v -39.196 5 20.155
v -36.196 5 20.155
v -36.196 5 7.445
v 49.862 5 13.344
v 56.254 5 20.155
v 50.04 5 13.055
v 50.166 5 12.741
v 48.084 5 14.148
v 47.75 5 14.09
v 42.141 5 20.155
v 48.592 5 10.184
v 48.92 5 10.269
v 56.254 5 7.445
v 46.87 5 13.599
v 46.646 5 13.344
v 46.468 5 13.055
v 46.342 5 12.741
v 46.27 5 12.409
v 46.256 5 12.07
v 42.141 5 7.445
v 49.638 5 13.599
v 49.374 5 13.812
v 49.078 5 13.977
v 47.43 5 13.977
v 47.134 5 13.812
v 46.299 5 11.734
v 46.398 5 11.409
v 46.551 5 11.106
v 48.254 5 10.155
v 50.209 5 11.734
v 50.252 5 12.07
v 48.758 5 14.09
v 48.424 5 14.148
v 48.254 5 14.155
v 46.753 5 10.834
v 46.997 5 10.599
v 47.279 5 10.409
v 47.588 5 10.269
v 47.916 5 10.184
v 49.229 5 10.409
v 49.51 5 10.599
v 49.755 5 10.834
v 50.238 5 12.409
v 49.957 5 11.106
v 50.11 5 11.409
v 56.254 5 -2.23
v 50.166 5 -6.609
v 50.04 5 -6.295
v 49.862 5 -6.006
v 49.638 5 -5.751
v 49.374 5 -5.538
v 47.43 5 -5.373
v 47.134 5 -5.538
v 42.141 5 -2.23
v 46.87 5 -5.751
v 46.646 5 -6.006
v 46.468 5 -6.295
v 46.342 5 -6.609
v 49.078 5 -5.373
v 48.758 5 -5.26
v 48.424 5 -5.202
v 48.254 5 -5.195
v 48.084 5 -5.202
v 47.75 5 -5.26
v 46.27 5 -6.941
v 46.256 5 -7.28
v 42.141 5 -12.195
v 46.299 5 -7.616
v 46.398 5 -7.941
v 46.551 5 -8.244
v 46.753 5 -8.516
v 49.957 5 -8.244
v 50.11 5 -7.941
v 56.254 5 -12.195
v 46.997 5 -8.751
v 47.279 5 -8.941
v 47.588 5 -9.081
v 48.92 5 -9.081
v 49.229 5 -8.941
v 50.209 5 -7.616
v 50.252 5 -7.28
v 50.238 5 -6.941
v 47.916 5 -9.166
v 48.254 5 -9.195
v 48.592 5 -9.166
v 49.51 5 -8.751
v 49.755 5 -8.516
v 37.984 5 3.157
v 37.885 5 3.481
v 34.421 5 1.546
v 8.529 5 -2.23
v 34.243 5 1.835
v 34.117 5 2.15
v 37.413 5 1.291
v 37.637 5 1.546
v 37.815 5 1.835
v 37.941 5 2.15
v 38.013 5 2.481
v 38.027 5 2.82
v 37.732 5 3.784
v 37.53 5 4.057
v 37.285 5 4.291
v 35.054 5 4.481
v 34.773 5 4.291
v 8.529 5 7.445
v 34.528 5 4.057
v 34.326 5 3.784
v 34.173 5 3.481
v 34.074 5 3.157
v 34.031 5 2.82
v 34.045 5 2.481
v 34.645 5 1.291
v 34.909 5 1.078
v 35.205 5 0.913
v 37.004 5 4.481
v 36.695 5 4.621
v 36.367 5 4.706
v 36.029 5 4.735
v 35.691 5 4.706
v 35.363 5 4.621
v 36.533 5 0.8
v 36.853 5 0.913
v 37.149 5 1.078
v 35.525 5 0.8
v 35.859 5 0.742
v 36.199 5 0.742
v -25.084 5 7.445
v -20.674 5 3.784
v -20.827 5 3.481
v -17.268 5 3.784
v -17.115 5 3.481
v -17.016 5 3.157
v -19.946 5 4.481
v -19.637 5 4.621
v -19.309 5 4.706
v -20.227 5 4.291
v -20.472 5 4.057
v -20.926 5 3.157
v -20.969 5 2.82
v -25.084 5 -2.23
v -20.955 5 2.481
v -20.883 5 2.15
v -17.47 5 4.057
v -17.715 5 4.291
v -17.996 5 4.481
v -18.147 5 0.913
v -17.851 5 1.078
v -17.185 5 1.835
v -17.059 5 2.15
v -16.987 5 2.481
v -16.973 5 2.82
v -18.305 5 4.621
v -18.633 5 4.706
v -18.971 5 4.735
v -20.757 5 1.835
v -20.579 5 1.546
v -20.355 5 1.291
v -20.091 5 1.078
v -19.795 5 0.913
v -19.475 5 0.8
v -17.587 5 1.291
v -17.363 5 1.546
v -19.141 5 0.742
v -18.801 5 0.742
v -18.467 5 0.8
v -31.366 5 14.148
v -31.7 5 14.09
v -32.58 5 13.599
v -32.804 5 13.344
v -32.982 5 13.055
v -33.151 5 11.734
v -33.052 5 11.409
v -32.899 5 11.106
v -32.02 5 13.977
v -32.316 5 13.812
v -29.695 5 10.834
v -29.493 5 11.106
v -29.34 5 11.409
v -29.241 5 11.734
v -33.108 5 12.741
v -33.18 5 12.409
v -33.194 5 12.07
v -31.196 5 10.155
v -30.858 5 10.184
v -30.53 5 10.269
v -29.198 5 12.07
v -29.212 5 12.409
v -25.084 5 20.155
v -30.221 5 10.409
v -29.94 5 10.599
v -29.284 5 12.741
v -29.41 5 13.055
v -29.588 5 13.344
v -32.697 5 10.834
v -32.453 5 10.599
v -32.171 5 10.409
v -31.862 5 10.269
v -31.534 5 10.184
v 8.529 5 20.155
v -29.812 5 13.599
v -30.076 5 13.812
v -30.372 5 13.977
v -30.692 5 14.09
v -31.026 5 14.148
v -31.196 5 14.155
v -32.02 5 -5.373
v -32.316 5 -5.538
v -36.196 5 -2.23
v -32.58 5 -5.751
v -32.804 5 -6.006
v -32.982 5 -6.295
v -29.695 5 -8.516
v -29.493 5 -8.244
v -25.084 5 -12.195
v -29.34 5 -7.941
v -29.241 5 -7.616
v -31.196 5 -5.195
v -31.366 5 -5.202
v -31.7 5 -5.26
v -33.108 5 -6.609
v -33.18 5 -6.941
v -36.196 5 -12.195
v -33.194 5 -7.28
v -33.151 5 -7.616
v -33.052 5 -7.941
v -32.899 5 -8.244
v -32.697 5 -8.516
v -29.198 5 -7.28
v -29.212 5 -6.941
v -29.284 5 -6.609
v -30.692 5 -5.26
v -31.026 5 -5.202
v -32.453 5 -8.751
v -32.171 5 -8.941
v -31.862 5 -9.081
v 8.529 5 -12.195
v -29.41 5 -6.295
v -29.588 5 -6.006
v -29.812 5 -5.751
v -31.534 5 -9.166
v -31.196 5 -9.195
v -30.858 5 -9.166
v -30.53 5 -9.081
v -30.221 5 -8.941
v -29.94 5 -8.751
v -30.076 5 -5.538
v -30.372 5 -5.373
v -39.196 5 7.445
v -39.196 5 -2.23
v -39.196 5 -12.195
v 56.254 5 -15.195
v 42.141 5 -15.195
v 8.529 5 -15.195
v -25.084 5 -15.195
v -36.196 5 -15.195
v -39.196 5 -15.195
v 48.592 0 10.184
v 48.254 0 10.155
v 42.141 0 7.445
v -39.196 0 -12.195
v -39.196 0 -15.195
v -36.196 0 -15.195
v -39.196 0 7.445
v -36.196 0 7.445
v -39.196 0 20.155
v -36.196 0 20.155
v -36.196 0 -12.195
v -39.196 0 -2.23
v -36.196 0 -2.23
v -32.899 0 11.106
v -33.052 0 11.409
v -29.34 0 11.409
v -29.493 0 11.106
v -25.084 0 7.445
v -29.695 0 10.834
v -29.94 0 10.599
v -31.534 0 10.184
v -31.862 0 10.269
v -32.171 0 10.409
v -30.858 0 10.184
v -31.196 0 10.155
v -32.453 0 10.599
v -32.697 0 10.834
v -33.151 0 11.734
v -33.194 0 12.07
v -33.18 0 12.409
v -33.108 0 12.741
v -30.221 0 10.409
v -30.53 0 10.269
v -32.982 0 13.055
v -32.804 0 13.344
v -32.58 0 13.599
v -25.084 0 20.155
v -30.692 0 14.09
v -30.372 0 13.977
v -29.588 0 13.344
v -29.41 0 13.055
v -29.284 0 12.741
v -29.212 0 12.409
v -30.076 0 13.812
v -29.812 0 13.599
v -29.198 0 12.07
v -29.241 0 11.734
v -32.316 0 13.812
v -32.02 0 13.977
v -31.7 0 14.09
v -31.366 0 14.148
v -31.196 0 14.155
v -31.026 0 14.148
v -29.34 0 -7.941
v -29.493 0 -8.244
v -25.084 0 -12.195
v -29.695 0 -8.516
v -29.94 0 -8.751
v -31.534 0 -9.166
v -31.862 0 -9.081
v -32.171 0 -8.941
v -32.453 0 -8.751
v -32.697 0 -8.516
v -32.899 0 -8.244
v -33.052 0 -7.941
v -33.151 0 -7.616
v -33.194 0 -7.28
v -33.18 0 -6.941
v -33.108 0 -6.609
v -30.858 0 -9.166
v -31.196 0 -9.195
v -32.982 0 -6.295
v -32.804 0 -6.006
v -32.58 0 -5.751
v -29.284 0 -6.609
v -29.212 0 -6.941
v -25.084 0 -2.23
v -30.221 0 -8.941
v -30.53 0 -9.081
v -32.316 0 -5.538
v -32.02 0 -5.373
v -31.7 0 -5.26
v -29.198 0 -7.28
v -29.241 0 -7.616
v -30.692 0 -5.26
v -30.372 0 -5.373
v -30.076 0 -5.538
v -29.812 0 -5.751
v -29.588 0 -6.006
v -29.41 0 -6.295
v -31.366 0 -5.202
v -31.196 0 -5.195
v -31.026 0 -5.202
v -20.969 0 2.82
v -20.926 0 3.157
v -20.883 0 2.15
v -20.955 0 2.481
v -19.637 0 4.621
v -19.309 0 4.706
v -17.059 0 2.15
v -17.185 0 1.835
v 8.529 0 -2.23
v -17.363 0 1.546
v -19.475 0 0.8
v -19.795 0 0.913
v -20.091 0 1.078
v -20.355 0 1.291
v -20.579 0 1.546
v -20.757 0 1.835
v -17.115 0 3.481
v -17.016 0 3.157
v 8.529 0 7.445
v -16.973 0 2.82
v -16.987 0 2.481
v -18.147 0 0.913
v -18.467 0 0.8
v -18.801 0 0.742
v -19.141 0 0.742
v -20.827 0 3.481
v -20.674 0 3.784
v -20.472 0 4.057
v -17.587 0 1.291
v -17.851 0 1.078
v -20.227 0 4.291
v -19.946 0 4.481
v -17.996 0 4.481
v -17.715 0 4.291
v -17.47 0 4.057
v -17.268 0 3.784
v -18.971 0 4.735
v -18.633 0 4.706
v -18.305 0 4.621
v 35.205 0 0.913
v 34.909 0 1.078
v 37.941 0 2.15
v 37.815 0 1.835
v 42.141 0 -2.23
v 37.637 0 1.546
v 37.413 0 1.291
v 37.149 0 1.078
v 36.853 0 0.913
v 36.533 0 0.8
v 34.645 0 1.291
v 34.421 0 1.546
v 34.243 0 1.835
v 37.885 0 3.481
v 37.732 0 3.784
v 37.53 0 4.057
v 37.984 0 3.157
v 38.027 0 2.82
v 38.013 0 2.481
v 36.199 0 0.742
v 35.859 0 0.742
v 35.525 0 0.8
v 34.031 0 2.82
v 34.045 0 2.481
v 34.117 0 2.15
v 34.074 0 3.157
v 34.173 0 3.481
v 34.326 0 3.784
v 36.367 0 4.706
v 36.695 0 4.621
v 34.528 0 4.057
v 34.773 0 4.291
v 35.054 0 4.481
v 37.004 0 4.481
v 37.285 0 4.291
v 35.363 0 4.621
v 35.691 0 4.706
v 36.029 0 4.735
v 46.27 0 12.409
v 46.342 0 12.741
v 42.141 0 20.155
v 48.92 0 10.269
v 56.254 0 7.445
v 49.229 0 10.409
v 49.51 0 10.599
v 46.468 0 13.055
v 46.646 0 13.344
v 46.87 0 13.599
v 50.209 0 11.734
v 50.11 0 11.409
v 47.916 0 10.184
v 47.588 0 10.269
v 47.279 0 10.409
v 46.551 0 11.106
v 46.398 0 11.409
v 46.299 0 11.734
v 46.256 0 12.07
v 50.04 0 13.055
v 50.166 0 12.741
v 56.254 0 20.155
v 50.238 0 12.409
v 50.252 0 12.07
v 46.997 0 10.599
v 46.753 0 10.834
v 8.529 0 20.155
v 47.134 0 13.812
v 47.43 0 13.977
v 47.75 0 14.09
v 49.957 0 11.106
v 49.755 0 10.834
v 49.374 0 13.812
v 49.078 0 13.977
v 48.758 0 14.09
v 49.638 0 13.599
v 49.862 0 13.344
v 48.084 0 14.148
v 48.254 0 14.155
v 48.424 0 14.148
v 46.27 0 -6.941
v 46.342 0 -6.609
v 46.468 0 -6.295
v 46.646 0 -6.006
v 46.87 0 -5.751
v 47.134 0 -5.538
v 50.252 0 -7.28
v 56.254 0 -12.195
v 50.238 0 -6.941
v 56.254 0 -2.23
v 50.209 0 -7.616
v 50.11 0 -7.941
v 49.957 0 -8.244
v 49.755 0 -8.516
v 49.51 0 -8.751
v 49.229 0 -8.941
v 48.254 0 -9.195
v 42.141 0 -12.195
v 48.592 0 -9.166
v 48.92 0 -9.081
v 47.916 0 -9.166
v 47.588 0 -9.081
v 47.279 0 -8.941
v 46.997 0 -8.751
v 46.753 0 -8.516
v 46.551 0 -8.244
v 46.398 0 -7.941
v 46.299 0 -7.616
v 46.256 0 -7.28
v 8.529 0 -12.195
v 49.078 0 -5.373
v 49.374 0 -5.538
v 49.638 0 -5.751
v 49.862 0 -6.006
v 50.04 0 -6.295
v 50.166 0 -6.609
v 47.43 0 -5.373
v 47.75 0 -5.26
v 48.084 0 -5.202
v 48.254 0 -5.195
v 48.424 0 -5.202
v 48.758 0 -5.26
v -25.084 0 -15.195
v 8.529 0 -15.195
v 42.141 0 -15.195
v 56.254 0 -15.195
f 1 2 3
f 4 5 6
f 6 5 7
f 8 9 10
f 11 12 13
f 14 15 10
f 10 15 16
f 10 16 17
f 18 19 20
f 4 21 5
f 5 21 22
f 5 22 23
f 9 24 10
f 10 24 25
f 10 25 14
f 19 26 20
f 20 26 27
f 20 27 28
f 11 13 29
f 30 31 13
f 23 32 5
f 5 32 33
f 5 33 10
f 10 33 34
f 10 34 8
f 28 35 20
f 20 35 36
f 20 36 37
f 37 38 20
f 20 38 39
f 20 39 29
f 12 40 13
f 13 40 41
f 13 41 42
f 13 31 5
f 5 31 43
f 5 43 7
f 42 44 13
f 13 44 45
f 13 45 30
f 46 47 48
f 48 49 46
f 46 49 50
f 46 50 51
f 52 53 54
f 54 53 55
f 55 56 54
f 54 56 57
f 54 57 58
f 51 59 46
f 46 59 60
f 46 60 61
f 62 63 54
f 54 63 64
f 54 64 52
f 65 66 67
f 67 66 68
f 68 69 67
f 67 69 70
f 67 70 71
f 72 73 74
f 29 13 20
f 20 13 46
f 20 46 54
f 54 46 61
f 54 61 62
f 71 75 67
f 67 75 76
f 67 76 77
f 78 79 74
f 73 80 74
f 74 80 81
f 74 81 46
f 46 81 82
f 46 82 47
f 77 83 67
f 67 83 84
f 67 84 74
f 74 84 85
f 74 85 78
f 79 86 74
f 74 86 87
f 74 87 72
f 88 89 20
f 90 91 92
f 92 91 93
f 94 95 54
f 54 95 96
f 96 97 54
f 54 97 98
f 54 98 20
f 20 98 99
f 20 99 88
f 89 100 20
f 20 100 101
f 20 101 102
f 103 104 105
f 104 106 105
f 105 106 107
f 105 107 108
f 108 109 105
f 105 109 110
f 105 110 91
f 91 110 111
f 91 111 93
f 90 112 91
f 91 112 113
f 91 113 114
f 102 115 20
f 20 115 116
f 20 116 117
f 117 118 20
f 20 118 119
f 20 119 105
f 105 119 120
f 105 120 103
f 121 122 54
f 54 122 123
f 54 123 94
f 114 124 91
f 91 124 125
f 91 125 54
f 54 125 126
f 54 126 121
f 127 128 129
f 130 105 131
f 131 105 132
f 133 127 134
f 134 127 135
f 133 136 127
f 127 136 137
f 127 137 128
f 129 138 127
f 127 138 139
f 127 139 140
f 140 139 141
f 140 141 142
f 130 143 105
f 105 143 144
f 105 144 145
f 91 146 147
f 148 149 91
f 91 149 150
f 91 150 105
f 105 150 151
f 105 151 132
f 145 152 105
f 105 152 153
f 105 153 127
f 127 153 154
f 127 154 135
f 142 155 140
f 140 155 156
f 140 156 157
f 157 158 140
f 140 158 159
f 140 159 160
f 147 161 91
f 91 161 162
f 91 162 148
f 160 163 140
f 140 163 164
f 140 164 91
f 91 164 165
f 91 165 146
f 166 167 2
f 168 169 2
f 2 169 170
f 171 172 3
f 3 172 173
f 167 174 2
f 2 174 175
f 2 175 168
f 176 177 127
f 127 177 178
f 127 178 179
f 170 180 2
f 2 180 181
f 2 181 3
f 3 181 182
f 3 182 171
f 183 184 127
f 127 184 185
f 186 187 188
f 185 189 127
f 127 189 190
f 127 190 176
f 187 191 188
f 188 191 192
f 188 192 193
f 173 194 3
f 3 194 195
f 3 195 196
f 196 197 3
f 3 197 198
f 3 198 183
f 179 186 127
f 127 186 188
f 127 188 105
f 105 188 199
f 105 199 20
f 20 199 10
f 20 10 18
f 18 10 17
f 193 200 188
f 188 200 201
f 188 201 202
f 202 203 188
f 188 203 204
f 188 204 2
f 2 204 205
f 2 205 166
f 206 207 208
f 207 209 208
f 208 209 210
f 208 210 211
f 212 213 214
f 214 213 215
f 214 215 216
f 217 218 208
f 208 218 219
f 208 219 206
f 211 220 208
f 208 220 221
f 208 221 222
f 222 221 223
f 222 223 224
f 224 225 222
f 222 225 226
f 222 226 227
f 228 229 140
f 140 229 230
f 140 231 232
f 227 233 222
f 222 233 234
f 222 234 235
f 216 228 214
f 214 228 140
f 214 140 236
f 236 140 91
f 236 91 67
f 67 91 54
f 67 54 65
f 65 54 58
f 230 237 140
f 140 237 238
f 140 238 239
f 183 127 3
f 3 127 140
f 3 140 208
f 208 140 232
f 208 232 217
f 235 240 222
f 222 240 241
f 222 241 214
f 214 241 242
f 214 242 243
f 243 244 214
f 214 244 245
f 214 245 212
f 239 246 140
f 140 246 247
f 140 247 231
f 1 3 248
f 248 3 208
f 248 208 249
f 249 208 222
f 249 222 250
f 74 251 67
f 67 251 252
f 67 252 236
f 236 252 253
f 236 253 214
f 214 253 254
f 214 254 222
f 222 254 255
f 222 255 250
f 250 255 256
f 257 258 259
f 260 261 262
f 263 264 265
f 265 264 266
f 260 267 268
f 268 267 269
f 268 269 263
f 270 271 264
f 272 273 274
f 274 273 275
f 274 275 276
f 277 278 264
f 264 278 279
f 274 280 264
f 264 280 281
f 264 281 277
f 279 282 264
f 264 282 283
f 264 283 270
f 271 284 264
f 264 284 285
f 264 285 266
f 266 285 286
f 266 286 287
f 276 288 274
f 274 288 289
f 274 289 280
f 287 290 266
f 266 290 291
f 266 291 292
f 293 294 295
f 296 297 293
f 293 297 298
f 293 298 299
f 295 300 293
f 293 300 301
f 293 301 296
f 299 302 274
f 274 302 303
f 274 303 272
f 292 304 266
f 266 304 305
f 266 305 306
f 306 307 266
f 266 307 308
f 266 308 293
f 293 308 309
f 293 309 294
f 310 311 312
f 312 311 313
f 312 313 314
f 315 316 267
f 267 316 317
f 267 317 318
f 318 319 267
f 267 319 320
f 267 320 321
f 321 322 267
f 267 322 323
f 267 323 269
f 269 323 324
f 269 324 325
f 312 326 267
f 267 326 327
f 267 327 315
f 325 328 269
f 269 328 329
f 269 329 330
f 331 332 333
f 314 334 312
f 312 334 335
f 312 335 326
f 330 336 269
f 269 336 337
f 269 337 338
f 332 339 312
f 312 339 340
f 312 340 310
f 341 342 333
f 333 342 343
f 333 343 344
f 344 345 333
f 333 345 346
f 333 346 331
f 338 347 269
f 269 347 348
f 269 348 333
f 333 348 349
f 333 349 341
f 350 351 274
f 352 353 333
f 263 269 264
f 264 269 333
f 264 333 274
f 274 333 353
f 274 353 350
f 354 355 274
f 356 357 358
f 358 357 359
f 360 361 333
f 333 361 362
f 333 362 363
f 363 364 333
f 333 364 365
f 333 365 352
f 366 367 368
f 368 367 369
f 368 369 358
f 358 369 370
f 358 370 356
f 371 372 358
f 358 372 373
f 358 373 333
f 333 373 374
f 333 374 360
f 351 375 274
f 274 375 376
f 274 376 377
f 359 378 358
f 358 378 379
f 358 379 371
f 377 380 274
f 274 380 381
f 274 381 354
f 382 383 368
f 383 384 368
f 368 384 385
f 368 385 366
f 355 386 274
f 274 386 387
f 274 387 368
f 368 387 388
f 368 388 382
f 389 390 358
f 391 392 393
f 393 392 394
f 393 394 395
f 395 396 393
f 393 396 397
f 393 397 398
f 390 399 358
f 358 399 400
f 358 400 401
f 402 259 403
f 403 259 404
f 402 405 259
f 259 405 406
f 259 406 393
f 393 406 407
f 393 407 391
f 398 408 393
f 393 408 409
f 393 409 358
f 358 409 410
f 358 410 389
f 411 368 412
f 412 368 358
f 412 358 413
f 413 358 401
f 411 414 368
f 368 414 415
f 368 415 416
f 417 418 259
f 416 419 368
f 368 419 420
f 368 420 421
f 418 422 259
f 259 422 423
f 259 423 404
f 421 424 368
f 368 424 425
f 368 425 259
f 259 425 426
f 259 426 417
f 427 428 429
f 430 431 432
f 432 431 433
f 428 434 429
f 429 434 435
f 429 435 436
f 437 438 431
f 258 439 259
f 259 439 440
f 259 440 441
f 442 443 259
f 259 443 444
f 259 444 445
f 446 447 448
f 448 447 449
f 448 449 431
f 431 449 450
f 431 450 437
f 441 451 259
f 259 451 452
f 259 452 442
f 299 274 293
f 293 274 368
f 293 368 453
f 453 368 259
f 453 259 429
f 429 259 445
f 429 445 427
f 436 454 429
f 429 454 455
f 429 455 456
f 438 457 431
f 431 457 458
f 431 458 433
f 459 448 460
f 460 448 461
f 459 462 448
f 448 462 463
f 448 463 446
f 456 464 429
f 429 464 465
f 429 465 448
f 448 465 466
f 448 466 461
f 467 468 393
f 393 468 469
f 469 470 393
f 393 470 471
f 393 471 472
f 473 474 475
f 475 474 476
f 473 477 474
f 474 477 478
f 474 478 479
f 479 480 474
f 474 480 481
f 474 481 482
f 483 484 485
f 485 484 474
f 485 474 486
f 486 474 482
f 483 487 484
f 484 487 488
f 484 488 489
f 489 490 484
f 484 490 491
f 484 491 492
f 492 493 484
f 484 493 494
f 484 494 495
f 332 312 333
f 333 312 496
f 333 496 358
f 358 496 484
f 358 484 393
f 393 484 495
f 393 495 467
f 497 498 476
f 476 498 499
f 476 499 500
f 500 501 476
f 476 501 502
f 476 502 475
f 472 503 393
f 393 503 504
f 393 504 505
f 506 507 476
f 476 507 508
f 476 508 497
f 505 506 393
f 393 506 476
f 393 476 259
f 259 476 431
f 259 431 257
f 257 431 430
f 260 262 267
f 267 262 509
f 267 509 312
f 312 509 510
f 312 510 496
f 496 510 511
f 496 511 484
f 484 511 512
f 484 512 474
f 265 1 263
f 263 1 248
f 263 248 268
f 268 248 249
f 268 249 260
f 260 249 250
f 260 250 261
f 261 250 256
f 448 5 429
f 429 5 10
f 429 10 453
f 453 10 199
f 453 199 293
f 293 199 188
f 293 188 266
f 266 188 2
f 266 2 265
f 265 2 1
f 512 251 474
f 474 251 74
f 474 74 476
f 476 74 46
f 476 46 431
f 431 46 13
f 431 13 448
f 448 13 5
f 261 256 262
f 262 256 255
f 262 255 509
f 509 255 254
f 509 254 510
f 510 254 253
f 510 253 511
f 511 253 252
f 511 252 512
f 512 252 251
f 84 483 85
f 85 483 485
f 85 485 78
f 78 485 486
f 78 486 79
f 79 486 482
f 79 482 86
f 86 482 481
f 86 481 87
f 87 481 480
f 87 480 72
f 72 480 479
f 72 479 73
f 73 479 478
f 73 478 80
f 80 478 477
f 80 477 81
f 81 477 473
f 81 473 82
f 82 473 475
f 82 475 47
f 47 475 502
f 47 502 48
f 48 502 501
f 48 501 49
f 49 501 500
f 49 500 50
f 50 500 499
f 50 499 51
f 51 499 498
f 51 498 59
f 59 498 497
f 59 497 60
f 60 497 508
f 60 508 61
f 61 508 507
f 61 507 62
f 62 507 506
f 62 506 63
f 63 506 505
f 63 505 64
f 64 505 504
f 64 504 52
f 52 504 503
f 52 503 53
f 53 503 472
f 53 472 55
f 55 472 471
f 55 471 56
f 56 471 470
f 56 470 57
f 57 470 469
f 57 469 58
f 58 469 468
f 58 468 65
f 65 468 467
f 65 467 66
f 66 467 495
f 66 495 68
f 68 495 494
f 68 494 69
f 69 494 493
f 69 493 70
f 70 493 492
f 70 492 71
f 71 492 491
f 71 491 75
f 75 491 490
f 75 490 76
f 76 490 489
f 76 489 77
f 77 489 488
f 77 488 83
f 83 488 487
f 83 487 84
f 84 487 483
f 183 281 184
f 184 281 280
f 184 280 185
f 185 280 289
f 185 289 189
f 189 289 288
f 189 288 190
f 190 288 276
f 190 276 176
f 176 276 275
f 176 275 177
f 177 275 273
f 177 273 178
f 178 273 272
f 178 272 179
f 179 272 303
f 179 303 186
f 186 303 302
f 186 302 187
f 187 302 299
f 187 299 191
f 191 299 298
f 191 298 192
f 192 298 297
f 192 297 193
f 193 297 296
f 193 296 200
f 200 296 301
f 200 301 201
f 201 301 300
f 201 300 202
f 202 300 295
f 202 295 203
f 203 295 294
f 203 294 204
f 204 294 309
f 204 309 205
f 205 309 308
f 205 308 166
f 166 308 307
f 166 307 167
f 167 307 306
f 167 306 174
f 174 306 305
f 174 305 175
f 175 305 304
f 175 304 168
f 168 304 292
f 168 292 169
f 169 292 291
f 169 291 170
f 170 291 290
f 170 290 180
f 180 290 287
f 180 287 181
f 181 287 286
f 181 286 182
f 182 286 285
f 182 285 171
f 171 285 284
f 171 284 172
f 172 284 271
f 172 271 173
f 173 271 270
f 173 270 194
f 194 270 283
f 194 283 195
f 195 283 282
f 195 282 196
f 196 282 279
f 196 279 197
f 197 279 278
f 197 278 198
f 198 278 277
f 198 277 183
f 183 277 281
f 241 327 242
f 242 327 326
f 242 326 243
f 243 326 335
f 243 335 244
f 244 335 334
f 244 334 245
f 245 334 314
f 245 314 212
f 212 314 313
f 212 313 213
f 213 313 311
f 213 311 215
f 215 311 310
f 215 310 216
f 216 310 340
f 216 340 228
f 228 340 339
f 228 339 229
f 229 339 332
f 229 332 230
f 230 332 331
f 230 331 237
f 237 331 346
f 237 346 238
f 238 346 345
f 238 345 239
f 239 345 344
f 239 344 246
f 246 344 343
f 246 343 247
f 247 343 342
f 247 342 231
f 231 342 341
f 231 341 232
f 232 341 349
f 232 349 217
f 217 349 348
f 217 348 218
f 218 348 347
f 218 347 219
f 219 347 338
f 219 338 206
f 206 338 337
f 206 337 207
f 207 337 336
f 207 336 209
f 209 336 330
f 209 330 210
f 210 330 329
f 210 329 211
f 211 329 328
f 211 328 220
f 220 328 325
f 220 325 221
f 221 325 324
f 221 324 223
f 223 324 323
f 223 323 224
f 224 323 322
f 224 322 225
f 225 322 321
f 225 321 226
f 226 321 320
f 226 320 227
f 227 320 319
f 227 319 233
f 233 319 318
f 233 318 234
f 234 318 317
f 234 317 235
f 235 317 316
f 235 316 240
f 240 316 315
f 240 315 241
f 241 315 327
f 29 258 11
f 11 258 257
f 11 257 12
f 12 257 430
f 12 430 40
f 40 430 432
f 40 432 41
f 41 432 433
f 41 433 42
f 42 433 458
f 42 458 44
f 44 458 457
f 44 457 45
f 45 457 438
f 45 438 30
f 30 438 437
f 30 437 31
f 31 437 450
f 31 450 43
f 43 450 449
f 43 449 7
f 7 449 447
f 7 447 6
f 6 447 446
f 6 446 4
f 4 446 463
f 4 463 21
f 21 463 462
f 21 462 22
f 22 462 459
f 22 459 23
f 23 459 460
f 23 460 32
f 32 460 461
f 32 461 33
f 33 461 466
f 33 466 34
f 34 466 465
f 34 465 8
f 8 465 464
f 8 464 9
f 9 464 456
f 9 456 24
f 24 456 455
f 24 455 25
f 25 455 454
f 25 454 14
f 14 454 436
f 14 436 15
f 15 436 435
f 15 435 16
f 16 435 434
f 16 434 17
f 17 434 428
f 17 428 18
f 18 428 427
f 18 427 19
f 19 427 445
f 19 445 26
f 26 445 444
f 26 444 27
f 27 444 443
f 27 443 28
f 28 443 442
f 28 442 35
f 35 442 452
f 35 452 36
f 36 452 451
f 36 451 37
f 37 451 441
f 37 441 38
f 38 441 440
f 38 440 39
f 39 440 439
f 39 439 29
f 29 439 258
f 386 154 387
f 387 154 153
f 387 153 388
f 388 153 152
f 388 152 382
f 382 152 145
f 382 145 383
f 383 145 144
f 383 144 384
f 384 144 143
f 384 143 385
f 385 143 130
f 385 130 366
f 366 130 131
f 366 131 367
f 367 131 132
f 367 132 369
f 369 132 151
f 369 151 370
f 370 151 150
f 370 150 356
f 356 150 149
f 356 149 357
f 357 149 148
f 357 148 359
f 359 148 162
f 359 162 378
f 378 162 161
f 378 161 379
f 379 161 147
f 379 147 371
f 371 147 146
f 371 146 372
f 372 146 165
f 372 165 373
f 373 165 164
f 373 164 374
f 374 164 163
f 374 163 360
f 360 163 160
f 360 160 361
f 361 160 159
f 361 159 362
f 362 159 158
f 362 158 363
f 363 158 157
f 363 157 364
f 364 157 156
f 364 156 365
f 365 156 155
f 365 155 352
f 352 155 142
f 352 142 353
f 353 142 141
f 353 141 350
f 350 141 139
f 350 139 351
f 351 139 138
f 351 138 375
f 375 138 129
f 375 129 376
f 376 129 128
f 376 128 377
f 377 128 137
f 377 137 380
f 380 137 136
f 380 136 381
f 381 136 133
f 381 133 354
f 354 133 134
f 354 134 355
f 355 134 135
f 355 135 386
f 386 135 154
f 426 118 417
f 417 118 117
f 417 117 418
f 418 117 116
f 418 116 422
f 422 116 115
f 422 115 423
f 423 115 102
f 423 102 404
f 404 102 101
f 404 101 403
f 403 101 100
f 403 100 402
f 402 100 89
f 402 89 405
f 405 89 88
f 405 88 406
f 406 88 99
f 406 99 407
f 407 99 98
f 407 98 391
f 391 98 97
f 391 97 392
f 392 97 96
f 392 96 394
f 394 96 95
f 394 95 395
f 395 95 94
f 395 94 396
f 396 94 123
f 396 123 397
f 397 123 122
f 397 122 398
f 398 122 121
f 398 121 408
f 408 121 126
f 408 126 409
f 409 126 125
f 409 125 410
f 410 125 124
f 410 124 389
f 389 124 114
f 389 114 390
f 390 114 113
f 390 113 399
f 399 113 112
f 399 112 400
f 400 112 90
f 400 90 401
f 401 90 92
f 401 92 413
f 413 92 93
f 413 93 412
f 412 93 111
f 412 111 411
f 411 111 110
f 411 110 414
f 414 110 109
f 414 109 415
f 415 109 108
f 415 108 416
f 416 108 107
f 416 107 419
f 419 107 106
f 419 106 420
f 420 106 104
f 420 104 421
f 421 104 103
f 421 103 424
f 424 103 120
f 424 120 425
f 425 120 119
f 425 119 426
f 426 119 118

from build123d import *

# Parameters (mm, degrees)
SKETCH_1_W          = 95.45
SKETCH_1_H          = 35.35
SKETCH_1_R          = 2
EXTRUDE_1_DEPTH     = 5
SKETCH_2_R          = 2
CUT_EXTRUDE_1_DEPTH = 5


with BuildPart() as part:
    # 草图1 → 凸台-拉伸1 (new body)
    with BuildSketch(Plane(origin=(0, 0, 0), x_dir=(1, 0, 0), z_dir=(0, 1, 0))):
        with Locations((8.528940217, -2.479891304)):
            Rectangle(SKETCH_1_W, SKETCH_1_H)
        with Locations(Location((-31.196059783, 7.195108696, 0), (0, 0, 270))):
            Circle(SKETCH_1_R, mode=Mode.SUBTRACT)
        with Locations(Location((-31.196059783, -12.154891304, 0), (0, 0, 270))):
            Circle(SKETCH_1_R, mode=Mode.SUBTRACT)
        with Locations(Location((48.253940217, 7.195108696, 0), (0, 0, 270))):
            Circle(SKETCH_1_R, mode=Mode.SUBTRACT)
        with Locations(Location((48.253940217, -12.154891304, 0), (0, 0, 270))):
            Circle(SKETCH_1_R, mode=Mode.SUBTRACT)
    extrude(amount=EXTRUDE_1_DEPTH)

    # 草图2 → 切除-拉伸1 (cut)
    with BuildSketch(Plane(origin=(0, 5, 0), x_dir=(1, 0, 0), z_dir=(0, 1, 0))):
        with Locations(Location((-18.971059783, -2.735165491, 0), (0, 0, 270))):
            Circle(SKETCH_2_R)
        with Locations(Location((36.028940217, -2.735165491, 0), (0, 0, 270))):
            Circle(SKETCH_2_R)
    extrude(amount=-CUT_EXTRUDE_1_DEPTH, mode=Mode.SUBTRACT)


solid = part.part
